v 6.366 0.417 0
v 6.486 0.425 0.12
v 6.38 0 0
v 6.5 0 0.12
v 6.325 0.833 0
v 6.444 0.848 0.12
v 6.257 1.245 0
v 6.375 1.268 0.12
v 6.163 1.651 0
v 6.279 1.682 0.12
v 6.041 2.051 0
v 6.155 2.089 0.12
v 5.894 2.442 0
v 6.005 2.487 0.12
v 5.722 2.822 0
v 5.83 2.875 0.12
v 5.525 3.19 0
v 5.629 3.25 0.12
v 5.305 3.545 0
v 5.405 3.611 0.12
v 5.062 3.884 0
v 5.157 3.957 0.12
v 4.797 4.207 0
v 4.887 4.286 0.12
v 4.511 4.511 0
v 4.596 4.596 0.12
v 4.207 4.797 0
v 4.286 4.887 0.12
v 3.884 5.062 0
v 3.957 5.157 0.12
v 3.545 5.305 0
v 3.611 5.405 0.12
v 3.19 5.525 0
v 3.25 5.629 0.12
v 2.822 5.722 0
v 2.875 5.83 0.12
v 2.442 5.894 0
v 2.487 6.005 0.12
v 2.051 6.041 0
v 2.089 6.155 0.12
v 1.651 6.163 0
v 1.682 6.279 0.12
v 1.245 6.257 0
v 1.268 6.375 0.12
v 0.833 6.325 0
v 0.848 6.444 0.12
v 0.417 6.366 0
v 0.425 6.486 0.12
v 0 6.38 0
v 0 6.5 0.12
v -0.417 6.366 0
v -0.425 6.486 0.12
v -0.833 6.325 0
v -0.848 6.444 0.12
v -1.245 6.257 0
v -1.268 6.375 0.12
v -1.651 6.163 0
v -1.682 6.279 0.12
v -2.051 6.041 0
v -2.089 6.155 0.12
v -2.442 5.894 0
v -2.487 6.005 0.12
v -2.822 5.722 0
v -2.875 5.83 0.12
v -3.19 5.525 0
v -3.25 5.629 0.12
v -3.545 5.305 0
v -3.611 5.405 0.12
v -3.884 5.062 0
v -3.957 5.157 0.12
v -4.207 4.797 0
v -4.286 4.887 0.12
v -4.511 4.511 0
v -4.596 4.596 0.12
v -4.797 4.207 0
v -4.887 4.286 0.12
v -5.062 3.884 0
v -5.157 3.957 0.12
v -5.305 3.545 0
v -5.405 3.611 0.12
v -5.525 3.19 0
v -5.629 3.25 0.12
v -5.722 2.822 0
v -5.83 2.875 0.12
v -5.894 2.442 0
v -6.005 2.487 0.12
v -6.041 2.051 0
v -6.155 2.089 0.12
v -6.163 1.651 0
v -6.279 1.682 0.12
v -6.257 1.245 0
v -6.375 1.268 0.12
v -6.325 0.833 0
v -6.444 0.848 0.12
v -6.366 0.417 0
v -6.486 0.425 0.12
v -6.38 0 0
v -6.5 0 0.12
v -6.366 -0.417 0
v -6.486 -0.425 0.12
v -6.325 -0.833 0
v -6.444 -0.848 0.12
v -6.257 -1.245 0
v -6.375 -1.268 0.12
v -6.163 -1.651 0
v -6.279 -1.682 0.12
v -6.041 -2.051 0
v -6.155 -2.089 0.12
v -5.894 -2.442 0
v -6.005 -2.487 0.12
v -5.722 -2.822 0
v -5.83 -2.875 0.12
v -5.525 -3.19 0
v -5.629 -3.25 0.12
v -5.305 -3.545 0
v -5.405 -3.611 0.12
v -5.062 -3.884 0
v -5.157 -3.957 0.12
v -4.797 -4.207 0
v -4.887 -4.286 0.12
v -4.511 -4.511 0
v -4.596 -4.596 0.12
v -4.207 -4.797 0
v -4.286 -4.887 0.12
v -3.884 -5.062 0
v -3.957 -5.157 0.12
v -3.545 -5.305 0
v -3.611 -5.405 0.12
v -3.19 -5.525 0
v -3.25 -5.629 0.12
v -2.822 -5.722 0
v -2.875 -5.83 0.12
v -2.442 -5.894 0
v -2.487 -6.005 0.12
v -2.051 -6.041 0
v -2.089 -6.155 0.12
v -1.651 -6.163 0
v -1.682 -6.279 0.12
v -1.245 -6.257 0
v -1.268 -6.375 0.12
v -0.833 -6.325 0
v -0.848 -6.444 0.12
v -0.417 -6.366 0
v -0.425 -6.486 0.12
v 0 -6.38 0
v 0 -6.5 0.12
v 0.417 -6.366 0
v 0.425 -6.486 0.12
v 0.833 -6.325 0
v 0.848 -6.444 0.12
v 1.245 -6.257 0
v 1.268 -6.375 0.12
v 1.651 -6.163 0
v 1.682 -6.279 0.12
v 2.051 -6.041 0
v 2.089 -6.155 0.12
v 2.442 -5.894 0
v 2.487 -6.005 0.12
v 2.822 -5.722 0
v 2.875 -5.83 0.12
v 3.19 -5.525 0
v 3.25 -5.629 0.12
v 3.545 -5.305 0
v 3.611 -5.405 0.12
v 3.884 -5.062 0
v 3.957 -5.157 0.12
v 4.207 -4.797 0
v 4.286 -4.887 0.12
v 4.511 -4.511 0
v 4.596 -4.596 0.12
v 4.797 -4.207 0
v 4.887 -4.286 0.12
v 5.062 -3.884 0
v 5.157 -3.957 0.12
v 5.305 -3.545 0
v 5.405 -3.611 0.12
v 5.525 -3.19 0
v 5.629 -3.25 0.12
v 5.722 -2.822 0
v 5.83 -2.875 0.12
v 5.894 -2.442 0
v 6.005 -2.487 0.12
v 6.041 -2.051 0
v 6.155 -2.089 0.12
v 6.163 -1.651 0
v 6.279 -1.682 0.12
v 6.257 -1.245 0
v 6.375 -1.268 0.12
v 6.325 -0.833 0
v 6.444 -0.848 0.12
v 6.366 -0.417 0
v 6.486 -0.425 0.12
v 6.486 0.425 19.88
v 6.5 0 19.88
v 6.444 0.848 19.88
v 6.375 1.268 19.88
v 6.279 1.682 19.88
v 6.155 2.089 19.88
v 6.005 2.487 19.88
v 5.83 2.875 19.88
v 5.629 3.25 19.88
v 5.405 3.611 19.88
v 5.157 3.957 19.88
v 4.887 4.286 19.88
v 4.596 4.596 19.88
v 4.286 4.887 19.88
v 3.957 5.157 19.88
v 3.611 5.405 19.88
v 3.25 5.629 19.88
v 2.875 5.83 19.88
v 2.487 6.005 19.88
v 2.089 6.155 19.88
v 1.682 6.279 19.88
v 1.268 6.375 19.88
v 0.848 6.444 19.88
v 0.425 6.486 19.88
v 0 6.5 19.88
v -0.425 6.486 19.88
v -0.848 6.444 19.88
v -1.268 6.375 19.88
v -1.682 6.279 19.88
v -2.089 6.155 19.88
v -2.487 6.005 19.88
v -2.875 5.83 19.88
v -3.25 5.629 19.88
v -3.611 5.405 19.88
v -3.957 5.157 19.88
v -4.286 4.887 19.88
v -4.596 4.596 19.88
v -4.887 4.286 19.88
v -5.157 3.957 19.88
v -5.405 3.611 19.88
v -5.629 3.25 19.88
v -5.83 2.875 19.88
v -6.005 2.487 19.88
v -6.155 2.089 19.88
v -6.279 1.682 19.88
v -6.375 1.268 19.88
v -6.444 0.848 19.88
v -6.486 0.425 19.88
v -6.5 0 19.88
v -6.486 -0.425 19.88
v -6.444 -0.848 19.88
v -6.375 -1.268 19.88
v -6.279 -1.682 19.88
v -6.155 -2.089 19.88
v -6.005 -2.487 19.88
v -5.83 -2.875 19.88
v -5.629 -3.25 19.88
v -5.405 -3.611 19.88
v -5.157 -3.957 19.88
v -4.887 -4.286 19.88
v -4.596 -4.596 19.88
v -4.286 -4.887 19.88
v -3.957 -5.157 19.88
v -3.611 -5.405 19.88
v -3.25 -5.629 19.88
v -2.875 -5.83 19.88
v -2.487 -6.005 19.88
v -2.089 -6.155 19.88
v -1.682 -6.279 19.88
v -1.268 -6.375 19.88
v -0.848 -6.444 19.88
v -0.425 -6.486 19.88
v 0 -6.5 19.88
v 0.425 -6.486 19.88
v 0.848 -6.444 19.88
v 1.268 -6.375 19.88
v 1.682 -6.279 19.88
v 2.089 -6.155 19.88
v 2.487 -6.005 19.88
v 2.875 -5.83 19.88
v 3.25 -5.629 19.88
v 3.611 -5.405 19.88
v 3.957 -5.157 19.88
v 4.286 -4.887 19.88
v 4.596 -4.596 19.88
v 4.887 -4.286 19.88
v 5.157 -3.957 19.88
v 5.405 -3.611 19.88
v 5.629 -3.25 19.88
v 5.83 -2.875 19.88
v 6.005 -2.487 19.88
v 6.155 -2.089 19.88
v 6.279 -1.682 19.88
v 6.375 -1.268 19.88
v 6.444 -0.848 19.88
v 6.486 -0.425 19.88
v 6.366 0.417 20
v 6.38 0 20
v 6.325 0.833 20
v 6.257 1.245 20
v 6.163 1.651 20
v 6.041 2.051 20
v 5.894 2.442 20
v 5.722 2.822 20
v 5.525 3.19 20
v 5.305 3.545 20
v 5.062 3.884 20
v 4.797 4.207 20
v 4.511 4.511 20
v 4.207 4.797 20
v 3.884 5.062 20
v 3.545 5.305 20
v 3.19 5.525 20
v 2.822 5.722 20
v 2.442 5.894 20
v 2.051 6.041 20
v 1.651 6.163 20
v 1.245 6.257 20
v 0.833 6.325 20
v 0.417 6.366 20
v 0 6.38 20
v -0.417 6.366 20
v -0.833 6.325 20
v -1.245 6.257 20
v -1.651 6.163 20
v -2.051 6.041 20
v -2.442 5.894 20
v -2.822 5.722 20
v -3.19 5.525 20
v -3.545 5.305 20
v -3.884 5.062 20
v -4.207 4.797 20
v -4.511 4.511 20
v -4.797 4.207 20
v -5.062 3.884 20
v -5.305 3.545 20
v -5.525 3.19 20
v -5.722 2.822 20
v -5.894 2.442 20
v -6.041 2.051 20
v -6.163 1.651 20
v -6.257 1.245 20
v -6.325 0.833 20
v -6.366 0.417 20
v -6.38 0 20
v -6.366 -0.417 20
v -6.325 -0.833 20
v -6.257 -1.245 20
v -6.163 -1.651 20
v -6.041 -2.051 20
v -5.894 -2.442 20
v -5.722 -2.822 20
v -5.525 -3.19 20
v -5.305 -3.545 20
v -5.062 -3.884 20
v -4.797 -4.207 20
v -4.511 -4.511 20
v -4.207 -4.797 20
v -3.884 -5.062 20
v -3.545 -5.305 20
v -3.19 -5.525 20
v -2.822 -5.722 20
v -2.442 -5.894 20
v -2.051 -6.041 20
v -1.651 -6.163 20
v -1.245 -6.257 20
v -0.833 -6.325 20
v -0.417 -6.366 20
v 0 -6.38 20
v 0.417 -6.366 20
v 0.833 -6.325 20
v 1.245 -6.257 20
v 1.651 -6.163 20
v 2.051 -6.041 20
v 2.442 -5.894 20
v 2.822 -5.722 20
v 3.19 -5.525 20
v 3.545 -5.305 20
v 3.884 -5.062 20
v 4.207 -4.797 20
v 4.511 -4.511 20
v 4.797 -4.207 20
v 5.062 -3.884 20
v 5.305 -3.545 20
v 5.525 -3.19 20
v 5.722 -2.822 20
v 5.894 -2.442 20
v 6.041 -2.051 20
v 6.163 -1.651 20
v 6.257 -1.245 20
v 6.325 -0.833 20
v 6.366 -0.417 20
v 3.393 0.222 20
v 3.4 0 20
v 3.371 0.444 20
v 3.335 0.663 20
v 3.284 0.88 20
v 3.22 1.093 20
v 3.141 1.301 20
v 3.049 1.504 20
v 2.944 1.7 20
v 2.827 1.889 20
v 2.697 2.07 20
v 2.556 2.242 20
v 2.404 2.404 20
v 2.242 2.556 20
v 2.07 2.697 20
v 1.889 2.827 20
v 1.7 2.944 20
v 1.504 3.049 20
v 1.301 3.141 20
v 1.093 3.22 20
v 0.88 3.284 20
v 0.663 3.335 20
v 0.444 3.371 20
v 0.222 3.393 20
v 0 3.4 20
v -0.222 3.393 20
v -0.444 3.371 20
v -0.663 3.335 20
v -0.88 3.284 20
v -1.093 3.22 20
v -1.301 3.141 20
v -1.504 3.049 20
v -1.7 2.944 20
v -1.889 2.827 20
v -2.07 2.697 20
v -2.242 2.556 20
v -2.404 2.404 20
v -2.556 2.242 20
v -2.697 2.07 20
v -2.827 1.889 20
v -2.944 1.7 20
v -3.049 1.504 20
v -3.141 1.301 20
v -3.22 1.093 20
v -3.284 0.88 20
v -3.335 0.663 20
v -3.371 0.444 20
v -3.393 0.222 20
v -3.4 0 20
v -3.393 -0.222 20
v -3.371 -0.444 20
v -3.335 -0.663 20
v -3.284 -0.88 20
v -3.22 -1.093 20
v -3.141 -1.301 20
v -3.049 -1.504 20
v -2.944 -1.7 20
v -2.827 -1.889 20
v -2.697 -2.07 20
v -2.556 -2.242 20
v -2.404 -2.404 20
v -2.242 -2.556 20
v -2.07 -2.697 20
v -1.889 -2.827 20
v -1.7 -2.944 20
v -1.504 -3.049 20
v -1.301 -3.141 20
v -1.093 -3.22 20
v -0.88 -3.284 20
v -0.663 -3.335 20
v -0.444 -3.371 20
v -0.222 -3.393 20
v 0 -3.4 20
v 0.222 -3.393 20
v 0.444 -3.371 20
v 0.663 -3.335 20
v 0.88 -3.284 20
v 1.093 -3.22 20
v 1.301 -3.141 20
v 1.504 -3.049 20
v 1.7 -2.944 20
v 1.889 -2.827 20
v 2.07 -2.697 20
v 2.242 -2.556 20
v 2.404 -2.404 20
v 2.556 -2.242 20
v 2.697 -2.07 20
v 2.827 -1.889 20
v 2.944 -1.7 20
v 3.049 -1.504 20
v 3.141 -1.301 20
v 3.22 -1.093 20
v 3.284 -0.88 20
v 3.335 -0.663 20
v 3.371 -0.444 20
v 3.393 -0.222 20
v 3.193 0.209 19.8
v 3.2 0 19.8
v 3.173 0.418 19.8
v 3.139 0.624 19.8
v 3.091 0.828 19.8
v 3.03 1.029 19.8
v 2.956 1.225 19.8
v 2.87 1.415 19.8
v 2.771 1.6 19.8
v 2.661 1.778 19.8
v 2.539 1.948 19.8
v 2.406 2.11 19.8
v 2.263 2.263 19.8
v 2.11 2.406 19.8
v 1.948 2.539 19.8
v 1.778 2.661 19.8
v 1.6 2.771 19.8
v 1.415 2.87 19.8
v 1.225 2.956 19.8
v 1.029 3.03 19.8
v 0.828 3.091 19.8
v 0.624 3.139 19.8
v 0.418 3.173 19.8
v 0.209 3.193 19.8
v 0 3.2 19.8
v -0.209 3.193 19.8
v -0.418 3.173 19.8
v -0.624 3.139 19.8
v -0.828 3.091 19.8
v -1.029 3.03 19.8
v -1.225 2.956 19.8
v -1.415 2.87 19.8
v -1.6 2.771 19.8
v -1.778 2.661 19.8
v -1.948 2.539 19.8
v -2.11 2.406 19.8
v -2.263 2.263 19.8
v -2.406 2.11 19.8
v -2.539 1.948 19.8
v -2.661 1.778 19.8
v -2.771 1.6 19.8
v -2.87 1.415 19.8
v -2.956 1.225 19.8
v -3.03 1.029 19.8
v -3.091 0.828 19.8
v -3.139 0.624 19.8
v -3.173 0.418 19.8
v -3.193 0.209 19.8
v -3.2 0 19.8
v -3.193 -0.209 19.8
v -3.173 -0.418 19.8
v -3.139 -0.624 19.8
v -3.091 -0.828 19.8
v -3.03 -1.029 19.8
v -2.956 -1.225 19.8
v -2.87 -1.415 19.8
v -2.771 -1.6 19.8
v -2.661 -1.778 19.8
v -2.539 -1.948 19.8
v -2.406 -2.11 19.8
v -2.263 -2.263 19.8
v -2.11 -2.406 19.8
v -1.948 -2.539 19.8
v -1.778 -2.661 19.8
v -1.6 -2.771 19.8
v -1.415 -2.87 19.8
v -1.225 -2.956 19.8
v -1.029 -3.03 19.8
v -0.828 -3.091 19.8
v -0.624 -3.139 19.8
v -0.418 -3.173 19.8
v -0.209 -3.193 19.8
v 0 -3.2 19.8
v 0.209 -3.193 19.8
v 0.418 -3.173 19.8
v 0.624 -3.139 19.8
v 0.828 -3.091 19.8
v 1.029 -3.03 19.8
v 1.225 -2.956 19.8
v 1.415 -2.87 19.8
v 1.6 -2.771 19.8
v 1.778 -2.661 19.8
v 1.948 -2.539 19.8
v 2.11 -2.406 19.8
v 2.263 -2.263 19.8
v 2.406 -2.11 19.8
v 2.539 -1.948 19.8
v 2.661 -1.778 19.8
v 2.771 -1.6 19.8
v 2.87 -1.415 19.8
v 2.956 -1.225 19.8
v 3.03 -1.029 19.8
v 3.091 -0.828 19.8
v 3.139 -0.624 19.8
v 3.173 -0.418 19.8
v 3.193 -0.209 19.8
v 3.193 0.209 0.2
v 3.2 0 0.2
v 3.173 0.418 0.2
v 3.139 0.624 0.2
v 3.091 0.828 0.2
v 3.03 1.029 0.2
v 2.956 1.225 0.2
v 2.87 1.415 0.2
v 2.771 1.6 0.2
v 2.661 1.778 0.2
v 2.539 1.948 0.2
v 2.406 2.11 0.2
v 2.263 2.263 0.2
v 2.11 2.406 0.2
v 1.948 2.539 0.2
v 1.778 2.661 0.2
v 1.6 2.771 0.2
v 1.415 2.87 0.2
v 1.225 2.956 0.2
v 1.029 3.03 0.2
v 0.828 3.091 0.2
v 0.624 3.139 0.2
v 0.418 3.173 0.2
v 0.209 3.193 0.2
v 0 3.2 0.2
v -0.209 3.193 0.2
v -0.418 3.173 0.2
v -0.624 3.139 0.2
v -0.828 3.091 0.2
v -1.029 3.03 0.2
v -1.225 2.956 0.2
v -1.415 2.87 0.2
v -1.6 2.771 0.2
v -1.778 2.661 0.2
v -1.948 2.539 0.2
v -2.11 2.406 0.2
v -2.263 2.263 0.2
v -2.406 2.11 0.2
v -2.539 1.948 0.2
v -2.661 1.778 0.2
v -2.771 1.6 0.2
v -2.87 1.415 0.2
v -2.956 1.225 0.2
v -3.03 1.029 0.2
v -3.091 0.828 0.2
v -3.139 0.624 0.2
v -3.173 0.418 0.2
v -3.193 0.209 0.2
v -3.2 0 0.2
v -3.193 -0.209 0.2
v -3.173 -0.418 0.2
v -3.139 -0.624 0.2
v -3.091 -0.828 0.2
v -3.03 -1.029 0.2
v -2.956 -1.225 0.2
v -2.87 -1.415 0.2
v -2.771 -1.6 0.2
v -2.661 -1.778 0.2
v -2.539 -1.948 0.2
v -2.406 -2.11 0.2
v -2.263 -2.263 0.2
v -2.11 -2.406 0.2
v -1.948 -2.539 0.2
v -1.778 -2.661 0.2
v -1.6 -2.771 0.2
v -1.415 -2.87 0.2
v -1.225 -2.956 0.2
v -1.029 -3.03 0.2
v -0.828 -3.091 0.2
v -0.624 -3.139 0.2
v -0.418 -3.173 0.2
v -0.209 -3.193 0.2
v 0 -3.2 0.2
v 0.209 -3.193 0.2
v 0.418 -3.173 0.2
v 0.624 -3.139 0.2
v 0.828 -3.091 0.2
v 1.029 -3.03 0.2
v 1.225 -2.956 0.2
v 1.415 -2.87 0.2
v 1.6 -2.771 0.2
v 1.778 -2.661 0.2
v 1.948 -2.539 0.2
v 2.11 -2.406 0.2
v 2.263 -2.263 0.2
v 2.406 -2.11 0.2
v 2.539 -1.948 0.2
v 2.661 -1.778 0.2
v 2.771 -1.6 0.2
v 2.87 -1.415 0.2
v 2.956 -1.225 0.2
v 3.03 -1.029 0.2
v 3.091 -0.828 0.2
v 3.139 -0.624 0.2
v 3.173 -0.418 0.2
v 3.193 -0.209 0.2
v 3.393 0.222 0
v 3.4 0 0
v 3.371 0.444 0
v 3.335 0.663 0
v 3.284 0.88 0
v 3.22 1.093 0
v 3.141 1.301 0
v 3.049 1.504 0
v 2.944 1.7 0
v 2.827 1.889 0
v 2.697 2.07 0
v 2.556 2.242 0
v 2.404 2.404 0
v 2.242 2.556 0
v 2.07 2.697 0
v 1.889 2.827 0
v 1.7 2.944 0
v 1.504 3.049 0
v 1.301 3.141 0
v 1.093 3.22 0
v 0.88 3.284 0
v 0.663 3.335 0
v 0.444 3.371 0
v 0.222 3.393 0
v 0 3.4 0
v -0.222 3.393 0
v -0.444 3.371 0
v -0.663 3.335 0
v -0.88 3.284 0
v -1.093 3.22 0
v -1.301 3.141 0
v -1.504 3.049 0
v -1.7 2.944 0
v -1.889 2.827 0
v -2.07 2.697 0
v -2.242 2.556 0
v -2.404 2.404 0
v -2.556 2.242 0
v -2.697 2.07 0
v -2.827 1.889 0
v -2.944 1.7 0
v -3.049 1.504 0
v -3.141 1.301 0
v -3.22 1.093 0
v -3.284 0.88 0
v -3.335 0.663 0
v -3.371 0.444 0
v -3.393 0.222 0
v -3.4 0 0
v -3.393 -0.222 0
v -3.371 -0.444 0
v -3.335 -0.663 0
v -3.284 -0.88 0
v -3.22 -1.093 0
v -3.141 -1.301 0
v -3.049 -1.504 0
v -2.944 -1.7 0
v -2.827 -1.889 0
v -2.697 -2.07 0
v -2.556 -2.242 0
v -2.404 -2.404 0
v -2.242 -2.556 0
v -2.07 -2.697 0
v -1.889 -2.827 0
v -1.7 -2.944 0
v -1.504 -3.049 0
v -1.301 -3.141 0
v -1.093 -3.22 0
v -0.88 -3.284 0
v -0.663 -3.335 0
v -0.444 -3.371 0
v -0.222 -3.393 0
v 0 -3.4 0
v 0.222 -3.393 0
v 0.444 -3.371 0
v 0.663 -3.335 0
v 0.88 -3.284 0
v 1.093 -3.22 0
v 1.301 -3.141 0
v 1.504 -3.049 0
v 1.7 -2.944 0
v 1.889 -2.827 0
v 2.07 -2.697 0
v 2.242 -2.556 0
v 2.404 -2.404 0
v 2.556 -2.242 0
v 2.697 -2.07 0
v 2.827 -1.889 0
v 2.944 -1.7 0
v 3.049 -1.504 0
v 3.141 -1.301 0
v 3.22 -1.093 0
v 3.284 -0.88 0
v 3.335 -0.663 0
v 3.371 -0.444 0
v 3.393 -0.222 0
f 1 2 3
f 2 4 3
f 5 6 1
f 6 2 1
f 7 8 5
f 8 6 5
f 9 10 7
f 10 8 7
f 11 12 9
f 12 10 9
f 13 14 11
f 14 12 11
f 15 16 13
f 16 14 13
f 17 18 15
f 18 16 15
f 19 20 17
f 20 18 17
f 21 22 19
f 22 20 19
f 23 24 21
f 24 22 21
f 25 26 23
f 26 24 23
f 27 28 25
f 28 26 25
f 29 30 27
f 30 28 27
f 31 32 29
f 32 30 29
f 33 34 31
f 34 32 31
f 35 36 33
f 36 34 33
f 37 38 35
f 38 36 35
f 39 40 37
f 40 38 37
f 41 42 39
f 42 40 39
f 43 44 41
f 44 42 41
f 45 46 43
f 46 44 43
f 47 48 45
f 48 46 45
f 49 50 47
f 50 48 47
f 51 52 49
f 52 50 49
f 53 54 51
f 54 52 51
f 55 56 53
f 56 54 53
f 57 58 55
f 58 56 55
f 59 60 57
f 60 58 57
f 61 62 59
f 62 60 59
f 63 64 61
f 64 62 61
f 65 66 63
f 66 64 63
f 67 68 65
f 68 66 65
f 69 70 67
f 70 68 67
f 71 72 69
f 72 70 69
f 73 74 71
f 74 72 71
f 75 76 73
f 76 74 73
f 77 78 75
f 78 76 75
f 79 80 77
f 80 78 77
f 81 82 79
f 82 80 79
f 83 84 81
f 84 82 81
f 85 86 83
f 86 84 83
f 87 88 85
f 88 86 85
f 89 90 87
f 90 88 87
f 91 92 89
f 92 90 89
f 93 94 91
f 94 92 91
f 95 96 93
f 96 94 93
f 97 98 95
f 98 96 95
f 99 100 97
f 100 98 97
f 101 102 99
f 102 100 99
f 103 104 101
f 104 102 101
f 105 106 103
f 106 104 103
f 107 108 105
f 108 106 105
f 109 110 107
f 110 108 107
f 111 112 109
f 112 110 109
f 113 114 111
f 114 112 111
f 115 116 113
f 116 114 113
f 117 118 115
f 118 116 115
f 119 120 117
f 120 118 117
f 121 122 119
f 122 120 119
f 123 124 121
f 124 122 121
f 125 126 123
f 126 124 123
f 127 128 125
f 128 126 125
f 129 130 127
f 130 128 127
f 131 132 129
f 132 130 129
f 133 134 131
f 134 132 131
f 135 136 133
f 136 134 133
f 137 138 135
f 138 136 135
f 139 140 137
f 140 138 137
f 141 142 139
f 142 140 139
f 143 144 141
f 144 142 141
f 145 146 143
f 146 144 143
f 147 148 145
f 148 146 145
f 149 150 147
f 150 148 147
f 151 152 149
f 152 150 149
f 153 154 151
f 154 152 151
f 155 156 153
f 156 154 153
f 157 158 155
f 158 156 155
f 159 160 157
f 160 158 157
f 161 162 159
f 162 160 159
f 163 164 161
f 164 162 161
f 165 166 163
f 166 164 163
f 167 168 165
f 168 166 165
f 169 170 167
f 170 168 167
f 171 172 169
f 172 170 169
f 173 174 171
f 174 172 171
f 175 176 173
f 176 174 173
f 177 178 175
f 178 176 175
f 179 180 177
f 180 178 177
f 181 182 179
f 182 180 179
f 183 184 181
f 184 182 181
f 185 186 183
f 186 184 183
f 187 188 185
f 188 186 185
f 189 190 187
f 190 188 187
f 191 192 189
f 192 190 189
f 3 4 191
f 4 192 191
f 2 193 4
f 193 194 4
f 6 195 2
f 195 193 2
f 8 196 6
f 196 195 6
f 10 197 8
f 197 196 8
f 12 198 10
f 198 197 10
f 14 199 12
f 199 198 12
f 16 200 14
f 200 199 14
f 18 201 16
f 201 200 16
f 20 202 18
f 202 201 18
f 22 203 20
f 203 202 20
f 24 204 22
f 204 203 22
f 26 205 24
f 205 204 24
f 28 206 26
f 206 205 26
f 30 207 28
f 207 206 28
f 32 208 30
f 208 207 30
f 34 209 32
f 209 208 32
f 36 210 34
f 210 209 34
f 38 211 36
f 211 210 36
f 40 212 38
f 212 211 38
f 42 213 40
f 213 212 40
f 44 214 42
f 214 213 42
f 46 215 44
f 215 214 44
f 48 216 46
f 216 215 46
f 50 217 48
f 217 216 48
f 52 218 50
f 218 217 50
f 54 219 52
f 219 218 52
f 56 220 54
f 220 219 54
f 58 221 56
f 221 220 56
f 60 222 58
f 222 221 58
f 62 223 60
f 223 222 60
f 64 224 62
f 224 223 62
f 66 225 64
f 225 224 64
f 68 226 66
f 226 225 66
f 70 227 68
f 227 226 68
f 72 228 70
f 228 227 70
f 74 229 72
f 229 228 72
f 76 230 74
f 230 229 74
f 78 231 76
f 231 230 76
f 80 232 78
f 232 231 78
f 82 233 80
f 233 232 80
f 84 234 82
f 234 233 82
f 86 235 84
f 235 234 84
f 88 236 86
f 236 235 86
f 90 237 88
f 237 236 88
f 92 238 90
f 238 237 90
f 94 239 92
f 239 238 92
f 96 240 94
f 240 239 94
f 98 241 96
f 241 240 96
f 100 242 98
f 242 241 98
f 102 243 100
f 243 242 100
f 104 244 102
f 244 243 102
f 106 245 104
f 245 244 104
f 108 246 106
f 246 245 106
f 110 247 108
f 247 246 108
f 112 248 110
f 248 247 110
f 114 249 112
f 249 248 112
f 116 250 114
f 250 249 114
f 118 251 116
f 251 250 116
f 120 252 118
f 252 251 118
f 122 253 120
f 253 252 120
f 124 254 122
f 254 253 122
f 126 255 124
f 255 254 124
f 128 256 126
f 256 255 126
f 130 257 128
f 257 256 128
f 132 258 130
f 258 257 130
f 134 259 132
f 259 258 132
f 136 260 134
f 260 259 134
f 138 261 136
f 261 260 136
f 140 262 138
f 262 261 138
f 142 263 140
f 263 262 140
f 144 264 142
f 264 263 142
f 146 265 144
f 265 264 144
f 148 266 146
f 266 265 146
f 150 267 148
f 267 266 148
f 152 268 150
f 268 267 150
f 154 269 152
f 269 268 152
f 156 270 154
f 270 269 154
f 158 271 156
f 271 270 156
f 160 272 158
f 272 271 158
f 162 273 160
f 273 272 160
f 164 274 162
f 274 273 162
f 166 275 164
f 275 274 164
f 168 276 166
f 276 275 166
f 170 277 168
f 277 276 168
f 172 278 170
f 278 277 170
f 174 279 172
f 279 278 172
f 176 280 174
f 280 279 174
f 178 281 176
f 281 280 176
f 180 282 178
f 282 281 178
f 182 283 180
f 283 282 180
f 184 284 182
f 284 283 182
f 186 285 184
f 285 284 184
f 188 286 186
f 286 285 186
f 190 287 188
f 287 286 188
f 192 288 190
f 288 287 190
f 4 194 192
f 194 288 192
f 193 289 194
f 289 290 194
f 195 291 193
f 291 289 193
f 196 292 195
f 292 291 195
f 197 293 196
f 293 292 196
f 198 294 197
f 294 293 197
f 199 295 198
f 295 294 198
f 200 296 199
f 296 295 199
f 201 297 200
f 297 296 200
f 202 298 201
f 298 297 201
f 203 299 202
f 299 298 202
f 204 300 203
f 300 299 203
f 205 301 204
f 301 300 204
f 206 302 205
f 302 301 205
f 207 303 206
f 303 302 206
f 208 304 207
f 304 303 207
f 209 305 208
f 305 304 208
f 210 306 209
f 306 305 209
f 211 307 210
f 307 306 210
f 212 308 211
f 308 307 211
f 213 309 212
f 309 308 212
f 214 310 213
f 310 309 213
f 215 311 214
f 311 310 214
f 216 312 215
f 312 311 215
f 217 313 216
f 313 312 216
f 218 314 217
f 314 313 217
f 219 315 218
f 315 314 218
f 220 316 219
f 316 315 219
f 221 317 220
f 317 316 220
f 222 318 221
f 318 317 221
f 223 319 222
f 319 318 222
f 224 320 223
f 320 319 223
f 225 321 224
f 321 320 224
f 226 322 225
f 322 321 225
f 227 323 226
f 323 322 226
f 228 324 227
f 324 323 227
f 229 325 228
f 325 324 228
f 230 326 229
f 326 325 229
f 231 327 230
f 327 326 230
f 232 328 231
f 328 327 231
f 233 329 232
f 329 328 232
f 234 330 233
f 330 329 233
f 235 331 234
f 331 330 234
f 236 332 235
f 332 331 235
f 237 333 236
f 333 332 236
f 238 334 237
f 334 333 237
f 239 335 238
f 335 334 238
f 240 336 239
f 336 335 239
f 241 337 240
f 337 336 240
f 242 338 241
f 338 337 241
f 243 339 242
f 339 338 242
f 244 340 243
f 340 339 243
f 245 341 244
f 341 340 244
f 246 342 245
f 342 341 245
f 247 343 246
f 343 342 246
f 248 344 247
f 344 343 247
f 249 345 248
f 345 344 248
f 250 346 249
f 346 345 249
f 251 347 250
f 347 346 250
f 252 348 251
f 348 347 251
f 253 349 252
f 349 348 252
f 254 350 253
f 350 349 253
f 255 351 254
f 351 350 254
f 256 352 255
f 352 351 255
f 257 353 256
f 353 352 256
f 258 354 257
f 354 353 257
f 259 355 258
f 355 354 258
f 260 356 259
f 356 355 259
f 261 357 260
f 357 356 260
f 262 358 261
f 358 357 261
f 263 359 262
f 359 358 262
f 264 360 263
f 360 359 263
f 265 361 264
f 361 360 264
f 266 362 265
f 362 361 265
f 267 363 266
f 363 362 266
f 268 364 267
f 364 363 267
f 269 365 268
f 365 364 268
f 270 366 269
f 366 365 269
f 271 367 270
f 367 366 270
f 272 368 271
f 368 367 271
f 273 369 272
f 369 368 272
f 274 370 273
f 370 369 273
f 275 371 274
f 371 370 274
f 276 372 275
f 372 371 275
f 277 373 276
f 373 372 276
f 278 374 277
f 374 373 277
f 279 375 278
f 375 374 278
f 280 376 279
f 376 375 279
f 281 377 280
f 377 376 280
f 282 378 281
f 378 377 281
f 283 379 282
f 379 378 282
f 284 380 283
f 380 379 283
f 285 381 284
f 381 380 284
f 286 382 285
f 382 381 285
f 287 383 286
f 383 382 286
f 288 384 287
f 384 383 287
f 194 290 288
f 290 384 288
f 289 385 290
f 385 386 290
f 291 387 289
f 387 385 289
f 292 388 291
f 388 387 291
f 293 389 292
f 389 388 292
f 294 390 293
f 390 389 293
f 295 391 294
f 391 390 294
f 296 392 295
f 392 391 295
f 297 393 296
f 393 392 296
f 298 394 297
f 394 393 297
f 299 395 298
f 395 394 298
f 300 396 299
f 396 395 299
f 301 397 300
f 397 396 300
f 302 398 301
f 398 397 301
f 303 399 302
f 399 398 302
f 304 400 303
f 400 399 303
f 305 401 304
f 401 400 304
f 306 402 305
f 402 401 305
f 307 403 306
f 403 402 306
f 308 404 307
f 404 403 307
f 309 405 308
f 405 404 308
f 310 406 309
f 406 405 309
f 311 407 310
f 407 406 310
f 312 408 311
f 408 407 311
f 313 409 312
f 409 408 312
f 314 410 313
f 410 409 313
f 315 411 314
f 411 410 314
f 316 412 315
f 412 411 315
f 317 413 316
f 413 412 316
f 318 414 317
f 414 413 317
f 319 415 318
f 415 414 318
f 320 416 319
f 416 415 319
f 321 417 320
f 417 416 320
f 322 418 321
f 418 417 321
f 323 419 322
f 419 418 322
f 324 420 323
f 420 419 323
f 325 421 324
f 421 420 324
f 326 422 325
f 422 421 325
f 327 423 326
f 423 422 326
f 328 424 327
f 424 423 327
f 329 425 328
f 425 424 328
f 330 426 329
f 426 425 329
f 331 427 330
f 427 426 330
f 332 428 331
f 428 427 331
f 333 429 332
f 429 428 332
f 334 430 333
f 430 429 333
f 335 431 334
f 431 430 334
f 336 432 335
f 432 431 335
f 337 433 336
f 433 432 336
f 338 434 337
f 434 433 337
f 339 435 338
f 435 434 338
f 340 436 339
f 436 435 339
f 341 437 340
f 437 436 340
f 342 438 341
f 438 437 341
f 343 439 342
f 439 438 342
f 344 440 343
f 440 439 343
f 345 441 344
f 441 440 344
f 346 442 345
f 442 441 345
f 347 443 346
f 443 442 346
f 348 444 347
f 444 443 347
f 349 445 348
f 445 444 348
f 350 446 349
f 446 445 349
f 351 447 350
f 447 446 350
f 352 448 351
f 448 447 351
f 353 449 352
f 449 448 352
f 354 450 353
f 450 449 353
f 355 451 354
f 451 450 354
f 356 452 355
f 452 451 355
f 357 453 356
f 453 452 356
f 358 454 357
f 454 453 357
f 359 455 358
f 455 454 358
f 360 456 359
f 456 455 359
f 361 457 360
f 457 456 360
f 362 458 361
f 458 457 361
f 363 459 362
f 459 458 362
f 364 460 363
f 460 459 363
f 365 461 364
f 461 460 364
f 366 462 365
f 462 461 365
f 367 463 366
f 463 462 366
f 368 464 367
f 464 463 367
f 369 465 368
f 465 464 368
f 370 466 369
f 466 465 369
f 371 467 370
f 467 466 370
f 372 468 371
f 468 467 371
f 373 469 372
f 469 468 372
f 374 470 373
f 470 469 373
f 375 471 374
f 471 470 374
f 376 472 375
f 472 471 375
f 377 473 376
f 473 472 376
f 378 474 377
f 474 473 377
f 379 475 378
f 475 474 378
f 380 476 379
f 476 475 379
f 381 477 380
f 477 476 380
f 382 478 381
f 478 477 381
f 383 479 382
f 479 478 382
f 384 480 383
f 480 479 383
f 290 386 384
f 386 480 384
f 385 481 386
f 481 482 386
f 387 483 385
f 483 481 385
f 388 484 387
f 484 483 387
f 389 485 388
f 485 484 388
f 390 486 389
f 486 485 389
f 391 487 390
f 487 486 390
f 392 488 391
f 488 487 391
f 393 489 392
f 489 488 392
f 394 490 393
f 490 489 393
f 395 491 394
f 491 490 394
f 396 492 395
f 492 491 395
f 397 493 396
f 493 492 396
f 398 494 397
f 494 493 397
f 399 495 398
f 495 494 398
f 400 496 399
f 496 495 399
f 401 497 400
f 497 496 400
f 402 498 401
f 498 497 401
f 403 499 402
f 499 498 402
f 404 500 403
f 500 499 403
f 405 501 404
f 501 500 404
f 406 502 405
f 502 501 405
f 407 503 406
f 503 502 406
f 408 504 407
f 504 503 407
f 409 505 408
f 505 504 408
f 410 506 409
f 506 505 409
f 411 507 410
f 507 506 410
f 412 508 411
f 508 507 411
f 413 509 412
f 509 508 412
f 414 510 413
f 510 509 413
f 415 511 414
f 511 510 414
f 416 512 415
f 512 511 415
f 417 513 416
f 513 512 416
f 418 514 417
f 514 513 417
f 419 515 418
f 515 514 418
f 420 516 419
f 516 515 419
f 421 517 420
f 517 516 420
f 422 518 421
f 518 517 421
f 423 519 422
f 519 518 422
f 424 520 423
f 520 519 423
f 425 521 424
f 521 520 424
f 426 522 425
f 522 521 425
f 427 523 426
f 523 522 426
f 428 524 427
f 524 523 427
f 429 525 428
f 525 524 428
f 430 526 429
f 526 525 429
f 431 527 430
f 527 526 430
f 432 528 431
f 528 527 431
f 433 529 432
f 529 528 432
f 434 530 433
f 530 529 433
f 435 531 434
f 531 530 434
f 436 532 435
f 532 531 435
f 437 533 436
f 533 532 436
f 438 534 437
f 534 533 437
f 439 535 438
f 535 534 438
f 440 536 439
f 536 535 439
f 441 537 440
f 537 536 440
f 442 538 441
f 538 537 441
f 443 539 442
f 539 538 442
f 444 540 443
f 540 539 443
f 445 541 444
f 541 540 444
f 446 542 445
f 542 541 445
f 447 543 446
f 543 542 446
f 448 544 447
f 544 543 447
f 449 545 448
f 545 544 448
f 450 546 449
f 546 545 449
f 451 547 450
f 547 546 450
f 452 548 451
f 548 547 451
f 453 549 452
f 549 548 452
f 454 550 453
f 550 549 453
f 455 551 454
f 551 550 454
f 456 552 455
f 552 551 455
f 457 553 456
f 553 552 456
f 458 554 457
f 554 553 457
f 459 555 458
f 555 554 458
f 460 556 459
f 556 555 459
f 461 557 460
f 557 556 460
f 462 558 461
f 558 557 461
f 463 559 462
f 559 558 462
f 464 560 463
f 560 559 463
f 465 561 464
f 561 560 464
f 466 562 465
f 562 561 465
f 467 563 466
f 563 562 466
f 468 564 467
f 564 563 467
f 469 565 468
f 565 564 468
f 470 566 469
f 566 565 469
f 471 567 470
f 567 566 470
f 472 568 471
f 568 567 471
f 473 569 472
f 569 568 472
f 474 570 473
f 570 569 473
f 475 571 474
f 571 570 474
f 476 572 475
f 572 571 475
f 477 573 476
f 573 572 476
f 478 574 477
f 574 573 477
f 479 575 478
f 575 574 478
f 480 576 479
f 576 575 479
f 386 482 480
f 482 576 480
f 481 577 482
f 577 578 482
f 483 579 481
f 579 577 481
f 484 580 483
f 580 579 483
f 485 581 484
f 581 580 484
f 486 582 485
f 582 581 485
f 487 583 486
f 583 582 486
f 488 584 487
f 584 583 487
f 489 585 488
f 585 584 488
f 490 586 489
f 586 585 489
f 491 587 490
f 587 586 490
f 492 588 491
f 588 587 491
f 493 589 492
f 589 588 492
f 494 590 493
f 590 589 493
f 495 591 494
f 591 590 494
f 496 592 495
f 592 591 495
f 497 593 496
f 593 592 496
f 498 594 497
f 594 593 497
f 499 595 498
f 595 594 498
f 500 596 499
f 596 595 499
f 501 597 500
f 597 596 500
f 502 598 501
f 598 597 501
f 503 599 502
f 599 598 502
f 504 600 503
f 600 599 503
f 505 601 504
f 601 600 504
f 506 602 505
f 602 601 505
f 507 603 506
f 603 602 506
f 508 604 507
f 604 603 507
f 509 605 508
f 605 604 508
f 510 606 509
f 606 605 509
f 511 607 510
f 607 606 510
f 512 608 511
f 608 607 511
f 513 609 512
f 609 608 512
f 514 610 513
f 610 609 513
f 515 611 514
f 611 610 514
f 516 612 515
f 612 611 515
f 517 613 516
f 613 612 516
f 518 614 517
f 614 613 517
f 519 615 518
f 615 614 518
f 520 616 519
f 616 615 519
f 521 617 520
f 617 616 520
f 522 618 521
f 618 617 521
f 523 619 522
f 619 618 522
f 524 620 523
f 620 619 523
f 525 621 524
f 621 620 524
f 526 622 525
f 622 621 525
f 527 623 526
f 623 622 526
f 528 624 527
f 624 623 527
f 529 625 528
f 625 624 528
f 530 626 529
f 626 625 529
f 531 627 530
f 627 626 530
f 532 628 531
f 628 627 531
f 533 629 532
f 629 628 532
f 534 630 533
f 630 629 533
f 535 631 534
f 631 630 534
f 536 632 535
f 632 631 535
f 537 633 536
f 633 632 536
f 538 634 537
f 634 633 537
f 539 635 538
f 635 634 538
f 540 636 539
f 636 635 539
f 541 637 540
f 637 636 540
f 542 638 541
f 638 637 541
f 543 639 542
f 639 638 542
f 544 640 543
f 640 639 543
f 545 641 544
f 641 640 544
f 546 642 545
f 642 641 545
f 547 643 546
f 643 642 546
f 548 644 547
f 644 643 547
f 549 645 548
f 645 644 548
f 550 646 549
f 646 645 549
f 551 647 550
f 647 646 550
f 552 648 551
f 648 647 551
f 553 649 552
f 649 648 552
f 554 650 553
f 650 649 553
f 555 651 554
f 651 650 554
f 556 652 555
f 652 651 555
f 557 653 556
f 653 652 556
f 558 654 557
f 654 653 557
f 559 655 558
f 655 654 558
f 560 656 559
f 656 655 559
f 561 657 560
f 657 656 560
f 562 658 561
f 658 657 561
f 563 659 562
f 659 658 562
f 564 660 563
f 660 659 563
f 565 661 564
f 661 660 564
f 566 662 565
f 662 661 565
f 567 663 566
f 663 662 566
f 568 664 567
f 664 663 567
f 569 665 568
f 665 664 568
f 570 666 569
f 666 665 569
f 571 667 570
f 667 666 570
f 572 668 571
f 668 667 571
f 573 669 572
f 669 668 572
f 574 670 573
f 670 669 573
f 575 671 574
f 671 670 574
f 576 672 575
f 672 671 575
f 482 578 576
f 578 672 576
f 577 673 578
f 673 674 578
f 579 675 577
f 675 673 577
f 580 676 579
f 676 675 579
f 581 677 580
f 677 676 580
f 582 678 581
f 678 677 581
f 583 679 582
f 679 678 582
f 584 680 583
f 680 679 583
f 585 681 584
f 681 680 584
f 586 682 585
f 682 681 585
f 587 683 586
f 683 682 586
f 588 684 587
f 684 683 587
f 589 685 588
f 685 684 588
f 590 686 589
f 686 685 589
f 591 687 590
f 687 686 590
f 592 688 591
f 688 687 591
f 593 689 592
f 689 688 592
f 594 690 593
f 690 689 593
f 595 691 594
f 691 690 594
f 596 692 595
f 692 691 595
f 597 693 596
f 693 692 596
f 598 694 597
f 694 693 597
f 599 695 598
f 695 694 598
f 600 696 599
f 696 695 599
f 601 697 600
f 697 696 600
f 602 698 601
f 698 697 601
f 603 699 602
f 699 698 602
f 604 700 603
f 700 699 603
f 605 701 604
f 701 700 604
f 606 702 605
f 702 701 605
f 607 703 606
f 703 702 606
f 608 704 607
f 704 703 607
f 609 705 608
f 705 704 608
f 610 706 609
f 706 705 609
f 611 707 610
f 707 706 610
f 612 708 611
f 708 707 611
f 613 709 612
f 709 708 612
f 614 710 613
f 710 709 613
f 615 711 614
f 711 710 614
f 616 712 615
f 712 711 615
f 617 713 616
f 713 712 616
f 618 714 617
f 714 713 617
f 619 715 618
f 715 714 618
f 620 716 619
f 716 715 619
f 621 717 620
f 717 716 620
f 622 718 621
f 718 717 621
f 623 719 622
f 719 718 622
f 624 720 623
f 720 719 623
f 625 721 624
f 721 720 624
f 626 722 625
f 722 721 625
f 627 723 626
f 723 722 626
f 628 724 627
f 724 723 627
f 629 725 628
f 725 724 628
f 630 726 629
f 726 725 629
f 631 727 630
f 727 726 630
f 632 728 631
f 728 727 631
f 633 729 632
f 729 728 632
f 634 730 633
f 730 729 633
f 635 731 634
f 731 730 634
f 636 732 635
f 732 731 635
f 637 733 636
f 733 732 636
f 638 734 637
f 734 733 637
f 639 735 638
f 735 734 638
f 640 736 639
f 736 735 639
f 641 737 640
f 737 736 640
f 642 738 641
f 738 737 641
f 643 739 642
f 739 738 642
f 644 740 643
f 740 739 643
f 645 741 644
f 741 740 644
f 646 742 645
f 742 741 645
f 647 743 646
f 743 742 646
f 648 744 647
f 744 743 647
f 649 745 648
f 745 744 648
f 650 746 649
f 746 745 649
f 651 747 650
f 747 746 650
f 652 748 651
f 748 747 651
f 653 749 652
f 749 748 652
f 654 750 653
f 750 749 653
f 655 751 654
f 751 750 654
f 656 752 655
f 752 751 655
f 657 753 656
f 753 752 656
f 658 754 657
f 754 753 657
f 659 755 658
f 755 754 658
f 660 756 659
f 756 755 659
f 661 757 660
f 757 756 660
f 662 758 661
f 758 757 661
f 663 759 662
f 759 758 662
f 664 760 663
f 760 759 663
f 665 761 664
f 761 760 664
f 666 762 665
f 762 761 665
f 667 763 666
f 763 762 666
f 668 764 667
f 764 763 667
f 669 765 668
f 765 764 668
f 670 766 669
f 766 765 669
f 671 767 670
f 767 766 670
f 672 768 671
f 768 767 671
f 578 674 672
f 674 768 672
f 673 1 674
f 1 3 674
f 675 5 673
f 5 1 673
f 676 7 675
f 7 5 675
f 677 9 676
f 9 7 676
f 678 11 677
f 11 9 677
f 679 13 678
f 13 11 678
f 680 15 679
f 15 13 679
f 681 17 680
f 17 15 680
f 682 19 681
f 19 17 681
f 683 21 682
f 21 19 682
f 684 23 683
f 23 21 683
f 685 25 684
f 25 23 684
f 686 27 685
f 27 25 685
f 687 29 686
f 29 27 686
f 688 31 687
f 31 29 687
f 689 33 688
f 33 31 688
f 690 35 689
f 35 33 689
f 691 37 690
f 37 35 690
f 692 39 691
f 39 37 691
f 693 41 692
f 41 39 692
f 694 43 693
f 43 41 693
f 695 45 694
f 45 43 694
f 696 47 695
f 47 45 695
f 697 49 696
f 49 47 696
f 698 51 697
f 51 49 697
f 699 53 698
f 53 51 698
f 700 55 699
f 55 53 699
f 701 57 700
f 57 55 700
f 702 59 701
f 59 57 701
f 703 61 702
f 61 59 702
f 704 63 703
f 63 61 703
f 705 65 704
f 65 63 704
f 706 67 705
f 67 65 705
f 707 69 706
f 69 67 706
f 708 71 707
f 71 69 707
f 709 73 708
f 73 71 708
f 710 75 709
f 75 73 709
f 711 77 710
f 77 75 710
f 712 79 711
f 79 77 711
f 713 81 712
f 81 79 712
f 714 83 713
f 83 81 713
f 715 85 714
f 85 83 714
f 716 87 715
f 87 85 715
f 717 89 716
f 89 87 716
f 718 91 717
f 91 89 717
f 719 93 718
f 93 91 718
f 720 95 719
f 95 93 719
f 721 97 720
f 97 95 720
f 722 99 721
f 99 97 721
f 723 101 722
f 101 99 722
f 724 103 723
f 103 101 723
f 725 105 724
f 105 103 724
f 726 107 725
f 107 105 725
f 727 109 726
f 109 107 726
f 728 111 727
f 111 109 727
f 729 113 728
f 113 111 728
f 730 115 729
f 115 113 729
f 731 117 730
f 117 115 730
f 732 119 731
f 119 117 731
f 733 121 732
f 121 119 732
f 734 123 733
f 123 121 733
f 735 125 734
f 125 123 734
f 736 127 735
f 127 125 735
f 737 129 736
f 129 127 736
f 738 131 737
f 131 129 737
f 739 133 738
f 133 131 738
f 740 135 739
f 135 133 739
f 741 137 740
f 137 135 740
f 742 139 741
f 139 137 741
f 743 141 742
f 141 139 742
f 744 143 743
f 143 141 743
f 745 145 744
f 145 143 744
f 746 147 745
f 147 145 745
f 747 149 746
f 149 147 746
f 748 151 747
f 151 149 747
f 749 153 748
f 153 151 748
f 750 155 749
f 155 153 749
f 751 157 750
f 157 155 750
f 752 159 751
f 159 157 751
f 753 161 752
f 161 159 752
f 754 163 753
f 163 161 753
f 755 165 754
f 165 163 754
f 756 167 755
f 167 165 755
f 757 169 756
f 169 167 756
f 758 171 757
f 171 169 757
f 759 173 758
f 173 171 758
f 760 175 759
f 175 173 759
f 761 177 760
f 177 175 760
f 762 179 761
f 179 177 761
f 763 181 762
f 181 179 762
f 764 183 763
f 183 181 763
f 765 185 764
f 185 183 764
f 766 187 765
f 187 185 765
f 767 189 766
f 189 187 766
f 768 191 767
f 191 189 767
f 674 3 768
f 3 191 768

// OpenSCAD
// OOMP generic catalogue model; units: mm.
// Stud length is additional to body depth. Tapping depths are model assumptions.
variant = "full"; // [full, display]
family = "spacer";
connection_type = "plain";
depth_mm = 20;
stud_length_mm = 0;
tapped_depth_mm = 0;
bore_mm = 6.4;
outer_diameter_mm = 13;
across_flats_mm = 6;
thread_nominal_diameter_mm = 3;
thread_pitch_mm = 0.5;
edge_chamfer_mm = 0.12;
mouth_chamfer_mm = 0.2;
angular_segments = 96;
samples_per_pitch = 16;

// Boundary travels up the outside, then down any tapped/plain bore.
// Equal-height rings at shoulders form the annular shoulder faces.
n = angular_segments;
threaded = family == "standoff";
has_stud = connection_type == "stud_to_tapped" || connection_type == "stud_to_stud";
two_studs = connection_type == "stud_to_stud";
through = !threaded || connection_type == "tapped_to_tapped";
pitch = thread_pitch_mm;
diameter = threaded ? thread_nominal_diameter_mm : bore_mm;
minor = diameter - 5*sqrt(3)*pitch/8;
transition = mouth_chamfer_mm + (threaded ? 5*sqrt(3)*pitch/16 : 0);
tip_chamfer = mouth_chamfer_mm + 17*sqrt(3)*pitch/48;
function sorted(v) = len(v)<=1 ? v : let(p=v[0])
    concat(sorted([for(x=v) if(x<p-1e-8) x]), [p], sorted([for(x=v) if(x>p+1e-8) x]));
function reverse(v) = [for(i=[len(v)-1:-1:0]) v[i]];
function theta(i) = i*360/n;
function fract(x) = x-floor(x);
function phase_distance(i,z) = abs(fract(z/pitch-theta(i)/360+0.5)-0.5);
function thread_r(i,z) = minor/2 + min(5*sqrt(3)*pitch/16,
    max(0,(phase_distance(i,z)-0.125)*pitch*sqrt(3)));
function stud_r(i,z,tip) = min(diameter/2 - (variant=="full" ?
    min(17*sqrt(3)*pitch/48,max(0,(phase_distance(i,z)-0.0625)*pitch*sqrt(3))) : 0),
    diameter/2-tip_chamfer+abs(z-tip));
function body_r(i,z) = (threaded ? across_flats_mm/2/cos(theta(i)%60-30) : outer_diameter_mm/2)
    - max(0,edge_chamfer_mm-min(z,depth_mm-z));
function bore_r(i,z) = max(threaded ? (variant=="full" ? thread_r(i,z) : minor/2) : diameter/2,
    diameter/2+mouth_chamfer_mm-(through ? min(z,depth_mm-z) : depth_mm-z));
function stud_z(a,b,tip) = let(count=variant=="full" ? ceil(stud_length_mm/pitch*samples_per_pitch) : 1)
    sorted(concat([for(i=[0:count]) a+(b-a)*i/count], [tip==a ? tip+tip_chamfer : tip-tip_chamfer]));
body_z = sorted([0,edge_chamfer_mm,depth_mm-edge_chamfer_mm,depth_mm]);
low = through ? 0 : depth_mm-tapped_depth_mm;
count = threaded && variant=="full" ? ceil((depth_mm-low)/pitch*samples_per_pitch) : 1;
bore_z = two_studs ? [] : reverse(sorted(concat(
    [for(i=[0:count]) low+(depth_mm-low)*i/count],
    [depth_mm-mouth_chamfer_mm,depth_mm-transition],
    through ? [mouth_chamfer_mm,transition] : [])));
// Ring descriptors: [height, kind, tip]. Kind: 0 body, 1 stud, 2 bore.
rings = concat(
    has_stud ? [for(z=stud_z(-stud_length_mm,0,-stud_length_mm)) [z,1,-stud_length_mm]] : [],
    [for(z=body_z) [z,0,0]],
    two_studs ? [for(z=stud_z(depth_mm,depth_mm+stud_length_mm,depth_mm+stud_length_mm)) [z,1,depth_mm+stud_length_mm]] : [],
    [for(z=bore_z) [z,2,0]]);
function radius(i,ring) = ring[1]==0 ? body_r(i,ring[0]) :
    ring[1]==1 ? stud_r(i,ring[0],ring[2]) : bore_r(i,ring[0]);
points = concat([for(ring=rings) for(i=[0:n-1])
    [radius(i,ring)*cos(theta(i)),radius(i,ring)*sin(theta(i)),ring[0]]],
    through ? [] : [[0,0,rings[0][0]],[0,0,rings[len(rings)-1][0]]]);
center = len(rings)*n;
last = (len(rings)-1)*n;
// OpenSCAD winding is opposite to STL winding.
faces = concat(
    [for(j=[0:len(rings)-(through ? 1 : 2)]) for(i=[0:n-1]) each
        let(a=j*n+i,b=j*n+(i+1)%n,c=((j+1)%len(rings))*n+(i+1)%n,d=((j+1)%len(rings))*n+i)
        [[a,c,b],[a,d,c]]],
    through ? [] : [for(i=[0:n-1]) each let(k=(i+1)%n)
        [[center,i,k],[center+1,last+k,last+i]]]);
assert(family=="spacer" || family=="standoff");
assert(!threaded || connection_type=="tapped_to_tapped" || has_stud);
assert(depth_mm>0 && diameter>0 && pitch>0);
assert(variant=="full" || variant=="display");
assert(n>=24 && n%12==0 && samples_per_pitch>=8);
assert(mouth_chamfer_mm>0 && mouth_chamfer_mm<depth_mm/2);
assert(edge_chamfer_mm>=0 && edge_chamfer_mm<depth_mm/2);
assert(diameter+4*max(mouth_chamfer_mm,edge_chamfer_mm) < (threaded ? across_flats_mm : outer_diameter_mm));
assert(!has_stud || stud_length_mm>2*mouth_chamfer_mm);
assert(!through || !threaded || 2*transition<depth_mm);
assert(connection_type!="stud_to_tapped" || (tapped_depth_mm>transition && tapped_depth_mm<depth_mm));
color([0.86,0.85,0.81]) polyhedron(points=points,faces=faces,convexity=20);
